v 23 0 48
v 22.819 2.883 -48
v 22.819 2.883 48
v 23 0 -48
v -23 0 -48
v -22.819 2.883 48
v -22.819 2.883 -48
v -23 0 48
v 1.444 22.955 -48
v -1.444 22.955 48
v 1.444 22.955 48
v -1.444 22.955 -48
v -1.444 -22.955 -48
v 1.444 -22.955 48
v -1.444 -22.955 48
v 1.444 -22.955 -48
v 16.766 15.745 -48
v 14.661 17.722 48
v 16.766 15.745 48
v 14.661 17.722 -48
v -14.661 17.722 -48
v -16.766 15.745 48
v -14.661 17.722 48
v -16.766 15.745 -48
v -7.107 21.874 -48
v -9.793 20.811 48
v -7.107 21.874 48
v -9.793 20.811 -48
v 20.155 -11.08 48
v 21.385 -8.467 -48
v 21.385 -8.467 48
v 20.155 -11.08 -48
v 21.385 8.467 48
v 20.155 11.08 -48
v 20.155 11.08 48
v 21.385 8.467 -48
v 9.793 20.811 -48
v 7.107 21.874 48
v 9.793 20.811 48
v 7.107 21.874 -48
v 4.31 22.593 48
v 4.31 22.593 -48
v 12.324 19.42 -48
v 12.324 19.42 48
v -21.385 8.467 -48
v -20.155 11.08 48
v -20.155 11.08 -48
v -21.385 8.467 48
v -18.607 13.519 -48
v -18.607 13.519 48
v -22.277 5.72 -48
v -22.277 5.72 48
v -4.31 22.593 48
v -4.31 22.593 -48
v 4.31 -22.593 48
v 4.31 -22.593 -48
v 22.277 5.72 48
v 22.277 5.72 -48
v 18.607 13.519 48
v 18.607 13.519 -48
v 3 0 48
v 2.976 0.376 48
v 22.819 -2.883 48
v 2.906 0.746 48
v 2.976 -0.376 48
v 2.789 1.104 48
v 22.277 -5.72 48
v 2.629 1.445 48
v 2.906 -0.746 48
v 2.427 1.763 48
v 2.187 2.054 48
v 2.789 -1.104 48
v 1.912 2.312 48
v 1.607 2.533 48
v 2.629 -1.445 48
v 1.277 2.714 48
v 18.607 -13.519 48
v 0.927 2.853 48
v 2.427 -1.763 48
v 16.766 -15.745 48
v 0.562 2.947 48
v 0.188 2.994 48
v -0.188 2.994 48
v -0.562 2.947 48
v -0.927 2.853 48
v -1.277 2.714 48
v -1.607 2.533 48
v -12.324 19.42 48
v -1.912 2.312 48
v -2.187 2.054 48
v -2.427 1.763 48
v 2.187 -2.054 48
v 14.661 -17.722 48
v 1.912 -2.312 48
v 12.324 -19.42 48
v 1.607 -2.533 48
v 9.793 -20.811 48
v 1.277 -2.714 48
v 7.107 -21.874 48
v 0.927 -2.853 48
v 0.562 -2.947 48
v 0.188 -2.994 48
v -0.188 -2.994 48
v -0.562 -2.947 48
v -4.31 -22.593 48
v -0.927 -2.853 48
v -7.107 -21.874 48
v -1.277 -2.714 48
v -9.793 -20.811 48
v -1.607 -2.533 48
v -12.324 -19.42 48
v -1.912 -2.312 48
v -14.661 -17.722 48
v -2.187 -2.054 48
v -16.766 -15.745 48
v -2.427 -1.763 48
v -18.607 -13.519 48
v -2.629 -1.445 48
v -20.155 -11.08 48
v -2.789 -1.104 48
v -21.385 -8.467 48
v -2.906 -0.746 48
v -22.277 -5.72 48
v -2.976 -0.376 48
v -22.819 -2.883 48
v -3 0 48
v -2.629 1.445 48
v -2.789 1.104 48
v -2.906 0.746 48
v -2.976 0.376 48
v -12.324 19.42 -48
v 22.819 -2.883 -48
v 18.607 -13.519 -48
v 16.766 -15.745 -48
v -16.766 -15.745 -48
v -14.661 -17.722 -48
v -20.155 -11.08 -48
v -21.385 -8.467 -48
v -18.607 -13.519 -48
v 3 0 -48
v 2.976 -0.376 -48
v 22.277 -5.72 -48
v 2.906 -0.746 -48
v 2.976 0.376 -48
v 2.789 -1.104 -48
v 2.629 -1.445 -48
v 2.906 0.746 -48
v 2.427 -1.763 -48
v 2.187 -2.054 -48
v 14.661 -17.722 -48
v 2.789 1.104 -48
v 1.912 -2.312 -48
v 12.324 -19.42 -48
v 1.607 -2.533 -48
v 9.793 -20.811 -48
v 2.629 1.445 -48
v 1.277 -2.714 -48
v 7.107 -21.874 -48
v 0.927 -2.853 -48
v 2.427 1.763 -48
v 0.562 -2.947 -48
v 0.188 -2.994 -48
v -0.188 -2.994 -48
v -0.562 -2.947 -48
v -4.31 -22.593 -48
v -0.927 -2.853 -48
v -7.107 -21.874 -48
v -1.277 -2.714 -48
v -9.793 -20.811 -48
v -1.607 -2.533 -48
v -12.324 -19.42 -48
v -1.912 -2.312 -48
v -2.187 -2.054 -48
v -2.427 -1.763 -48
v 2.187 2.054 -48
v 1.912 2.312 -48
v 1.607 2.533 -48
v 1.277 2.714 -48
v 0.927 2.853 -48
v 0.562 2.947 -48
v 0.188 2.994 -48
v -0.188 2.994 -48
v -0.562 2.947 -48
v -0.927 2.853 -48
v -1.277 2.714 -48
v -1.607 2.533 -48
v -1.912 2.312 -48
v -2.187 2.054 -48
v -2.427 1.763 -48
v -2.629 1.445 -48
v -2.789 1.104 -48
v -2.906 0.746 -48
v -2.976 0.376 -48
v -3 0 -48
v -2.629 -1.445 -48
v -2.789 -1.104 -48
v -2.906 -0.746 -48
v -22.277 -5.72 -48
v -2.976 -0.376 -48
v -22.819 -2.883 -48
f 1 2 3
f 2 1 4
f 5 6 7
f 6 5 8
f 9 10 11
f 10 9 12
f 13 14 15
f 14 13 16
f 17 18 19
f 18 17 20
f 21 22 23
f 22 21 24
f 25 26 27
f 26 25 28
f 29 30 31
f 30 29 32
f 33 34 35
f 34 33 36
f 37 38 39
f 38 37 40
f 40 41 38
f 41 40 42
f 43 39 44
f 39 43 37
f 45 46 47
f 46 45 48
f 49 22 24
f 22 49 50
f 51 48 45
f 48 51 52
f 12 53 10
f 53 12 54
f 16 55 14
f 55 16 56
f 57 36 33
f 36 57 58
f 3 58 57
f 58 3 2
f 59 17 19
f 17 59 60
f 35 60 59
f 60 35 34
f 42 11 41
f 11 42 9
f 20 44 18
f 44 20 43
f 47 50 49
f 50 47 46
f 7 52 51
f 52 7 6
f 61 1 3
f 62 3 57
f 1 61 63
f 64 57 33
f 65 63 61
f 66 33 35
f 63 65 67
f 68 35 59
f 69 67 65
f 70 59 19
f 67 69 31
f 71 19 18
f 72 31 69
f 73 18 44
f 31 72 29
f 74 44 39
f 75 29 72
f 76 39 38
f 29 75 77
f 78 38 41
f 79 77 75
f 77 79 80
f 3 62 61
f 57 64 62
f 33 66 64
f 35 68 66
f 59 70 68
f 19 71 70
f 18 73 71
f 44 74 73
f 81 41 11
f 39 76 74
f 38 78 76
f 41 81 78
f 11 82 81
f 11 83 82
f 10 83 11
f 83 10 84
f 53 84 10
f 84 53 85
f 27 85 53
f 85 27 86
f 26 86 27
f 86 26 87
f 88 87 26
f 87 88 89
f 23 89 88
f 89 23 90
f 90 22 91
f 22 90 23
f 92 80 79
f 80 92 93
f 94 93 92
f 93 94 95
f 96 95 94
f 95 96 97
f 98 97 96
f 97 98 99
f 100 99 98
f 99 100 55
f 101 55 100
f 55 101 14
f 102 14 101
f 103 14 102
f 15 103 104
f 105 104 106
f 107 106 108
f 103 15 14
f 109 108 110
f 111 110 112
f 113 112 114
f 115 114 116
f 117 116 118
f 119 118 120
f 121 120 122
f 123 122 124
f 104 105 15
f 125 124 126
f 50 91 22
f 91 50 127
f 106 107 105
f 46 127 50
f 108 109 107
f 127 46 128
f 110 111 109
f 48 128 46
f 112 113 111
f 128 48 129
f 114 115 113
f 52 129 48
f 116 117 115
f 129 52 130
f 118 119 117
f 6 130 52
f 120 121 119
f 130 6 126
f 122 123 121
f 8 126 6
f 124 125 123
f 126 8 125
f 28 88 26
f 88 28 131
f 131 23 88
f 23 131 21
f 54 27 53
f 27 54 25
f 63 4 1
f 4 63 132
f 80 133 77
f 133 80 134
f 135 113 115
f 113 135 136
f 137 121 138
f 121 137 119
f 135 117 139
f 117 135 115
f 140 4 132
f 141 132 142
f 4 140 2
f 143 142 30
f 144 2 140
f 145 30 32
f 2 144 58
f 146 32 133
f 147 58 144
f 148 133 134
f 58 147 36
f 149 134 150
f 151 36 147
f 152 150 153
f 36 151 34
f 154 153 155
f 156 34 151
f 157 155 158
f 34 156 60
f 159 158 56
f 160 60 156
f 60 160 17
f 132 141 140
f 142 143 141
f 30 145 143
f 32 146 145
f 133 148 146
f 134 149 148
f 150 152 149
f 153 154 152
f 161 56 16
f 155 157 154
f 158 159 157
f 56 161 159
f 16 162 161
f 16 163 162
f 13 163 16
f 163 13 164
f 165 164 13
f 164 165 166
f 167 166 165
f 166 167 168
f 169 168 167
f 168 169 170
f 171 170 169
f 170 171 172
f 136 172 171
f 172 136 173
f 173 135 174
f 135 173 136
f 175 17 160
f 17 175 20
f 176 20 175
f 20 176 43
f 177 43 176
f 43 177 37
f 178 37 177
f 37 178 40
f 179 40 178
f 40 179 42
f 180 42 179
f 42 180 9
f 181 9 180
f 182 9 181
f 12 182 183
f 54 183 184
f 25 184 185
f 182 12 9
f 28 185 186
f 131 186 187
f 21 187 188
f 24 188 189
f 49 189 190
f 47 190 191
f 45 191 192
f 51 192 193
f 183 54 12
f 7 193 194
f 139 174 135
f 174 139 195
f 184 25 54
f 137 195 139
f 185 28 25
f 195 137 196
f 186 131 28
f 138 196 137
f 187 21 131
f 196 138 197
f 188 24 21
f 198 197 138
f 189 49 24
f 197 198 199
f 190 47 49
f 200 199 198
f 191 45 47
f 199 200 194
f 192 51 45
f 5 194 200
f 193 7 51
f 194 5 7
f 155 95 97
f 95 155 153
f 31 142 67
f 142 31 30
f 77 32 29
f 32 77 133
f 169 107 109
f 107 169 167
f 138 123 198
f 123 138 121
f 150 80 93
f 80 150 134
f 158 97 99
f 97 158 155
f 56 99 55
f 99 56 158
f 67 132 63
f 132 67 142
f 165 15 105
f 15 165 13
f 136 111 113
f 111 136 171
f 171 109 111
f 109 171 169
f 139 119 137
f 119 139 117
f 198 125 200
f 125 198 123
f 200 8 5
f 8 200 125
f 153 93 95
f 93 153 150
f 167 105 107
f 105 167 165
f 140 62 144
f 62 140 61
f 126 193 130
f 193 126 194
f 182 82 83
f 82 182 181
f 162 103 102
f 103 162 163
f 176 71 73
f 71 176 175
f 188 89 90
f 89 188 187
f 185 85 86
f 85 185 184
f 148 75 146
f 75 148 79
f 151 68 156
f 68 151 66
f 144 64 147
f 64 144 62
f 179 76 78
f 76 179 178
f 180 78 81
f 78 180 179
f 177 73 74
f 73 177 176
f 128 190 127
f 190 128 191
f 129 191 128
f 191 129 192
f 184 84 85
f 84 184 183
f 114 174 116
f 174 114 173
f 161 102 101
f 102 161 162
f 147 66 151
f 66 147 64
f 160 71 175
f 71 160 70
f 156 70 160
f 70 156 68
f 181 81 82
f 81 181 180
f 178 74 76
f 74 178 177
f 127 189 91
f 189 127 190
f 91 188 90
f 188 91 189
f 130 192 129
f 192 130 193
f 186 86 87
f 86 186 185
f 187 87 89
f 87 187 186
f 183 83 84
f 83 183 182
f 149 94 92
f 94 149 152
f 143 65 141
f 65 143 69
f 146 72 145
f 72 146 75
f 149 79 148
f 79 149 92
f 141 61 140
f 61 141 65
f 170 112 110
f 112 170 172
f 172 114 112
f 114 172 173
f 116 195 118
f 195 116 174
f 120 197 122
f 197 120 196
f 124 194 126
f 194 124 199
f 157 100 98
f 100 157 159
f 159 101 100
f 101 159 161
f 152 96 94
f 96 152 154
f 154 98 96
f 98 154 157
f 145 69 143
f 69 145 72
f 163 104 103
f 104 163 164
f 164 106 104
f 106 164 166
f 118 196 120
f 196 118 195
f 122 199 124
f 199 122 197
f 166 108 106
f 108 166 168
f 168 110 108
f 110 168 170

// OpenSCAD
$fn = 50;


difference() {
	union() {
		translate(v = [0, 0, -48.0000000000]) {
			cylinder(h = 96, r = 23.0000000000);
		}
	}
	union() {
		translate(v = [0, 0, -100.0000000000]) {
			cylinder(h = 200, r = 3.0000000000);
		}
	}
}
